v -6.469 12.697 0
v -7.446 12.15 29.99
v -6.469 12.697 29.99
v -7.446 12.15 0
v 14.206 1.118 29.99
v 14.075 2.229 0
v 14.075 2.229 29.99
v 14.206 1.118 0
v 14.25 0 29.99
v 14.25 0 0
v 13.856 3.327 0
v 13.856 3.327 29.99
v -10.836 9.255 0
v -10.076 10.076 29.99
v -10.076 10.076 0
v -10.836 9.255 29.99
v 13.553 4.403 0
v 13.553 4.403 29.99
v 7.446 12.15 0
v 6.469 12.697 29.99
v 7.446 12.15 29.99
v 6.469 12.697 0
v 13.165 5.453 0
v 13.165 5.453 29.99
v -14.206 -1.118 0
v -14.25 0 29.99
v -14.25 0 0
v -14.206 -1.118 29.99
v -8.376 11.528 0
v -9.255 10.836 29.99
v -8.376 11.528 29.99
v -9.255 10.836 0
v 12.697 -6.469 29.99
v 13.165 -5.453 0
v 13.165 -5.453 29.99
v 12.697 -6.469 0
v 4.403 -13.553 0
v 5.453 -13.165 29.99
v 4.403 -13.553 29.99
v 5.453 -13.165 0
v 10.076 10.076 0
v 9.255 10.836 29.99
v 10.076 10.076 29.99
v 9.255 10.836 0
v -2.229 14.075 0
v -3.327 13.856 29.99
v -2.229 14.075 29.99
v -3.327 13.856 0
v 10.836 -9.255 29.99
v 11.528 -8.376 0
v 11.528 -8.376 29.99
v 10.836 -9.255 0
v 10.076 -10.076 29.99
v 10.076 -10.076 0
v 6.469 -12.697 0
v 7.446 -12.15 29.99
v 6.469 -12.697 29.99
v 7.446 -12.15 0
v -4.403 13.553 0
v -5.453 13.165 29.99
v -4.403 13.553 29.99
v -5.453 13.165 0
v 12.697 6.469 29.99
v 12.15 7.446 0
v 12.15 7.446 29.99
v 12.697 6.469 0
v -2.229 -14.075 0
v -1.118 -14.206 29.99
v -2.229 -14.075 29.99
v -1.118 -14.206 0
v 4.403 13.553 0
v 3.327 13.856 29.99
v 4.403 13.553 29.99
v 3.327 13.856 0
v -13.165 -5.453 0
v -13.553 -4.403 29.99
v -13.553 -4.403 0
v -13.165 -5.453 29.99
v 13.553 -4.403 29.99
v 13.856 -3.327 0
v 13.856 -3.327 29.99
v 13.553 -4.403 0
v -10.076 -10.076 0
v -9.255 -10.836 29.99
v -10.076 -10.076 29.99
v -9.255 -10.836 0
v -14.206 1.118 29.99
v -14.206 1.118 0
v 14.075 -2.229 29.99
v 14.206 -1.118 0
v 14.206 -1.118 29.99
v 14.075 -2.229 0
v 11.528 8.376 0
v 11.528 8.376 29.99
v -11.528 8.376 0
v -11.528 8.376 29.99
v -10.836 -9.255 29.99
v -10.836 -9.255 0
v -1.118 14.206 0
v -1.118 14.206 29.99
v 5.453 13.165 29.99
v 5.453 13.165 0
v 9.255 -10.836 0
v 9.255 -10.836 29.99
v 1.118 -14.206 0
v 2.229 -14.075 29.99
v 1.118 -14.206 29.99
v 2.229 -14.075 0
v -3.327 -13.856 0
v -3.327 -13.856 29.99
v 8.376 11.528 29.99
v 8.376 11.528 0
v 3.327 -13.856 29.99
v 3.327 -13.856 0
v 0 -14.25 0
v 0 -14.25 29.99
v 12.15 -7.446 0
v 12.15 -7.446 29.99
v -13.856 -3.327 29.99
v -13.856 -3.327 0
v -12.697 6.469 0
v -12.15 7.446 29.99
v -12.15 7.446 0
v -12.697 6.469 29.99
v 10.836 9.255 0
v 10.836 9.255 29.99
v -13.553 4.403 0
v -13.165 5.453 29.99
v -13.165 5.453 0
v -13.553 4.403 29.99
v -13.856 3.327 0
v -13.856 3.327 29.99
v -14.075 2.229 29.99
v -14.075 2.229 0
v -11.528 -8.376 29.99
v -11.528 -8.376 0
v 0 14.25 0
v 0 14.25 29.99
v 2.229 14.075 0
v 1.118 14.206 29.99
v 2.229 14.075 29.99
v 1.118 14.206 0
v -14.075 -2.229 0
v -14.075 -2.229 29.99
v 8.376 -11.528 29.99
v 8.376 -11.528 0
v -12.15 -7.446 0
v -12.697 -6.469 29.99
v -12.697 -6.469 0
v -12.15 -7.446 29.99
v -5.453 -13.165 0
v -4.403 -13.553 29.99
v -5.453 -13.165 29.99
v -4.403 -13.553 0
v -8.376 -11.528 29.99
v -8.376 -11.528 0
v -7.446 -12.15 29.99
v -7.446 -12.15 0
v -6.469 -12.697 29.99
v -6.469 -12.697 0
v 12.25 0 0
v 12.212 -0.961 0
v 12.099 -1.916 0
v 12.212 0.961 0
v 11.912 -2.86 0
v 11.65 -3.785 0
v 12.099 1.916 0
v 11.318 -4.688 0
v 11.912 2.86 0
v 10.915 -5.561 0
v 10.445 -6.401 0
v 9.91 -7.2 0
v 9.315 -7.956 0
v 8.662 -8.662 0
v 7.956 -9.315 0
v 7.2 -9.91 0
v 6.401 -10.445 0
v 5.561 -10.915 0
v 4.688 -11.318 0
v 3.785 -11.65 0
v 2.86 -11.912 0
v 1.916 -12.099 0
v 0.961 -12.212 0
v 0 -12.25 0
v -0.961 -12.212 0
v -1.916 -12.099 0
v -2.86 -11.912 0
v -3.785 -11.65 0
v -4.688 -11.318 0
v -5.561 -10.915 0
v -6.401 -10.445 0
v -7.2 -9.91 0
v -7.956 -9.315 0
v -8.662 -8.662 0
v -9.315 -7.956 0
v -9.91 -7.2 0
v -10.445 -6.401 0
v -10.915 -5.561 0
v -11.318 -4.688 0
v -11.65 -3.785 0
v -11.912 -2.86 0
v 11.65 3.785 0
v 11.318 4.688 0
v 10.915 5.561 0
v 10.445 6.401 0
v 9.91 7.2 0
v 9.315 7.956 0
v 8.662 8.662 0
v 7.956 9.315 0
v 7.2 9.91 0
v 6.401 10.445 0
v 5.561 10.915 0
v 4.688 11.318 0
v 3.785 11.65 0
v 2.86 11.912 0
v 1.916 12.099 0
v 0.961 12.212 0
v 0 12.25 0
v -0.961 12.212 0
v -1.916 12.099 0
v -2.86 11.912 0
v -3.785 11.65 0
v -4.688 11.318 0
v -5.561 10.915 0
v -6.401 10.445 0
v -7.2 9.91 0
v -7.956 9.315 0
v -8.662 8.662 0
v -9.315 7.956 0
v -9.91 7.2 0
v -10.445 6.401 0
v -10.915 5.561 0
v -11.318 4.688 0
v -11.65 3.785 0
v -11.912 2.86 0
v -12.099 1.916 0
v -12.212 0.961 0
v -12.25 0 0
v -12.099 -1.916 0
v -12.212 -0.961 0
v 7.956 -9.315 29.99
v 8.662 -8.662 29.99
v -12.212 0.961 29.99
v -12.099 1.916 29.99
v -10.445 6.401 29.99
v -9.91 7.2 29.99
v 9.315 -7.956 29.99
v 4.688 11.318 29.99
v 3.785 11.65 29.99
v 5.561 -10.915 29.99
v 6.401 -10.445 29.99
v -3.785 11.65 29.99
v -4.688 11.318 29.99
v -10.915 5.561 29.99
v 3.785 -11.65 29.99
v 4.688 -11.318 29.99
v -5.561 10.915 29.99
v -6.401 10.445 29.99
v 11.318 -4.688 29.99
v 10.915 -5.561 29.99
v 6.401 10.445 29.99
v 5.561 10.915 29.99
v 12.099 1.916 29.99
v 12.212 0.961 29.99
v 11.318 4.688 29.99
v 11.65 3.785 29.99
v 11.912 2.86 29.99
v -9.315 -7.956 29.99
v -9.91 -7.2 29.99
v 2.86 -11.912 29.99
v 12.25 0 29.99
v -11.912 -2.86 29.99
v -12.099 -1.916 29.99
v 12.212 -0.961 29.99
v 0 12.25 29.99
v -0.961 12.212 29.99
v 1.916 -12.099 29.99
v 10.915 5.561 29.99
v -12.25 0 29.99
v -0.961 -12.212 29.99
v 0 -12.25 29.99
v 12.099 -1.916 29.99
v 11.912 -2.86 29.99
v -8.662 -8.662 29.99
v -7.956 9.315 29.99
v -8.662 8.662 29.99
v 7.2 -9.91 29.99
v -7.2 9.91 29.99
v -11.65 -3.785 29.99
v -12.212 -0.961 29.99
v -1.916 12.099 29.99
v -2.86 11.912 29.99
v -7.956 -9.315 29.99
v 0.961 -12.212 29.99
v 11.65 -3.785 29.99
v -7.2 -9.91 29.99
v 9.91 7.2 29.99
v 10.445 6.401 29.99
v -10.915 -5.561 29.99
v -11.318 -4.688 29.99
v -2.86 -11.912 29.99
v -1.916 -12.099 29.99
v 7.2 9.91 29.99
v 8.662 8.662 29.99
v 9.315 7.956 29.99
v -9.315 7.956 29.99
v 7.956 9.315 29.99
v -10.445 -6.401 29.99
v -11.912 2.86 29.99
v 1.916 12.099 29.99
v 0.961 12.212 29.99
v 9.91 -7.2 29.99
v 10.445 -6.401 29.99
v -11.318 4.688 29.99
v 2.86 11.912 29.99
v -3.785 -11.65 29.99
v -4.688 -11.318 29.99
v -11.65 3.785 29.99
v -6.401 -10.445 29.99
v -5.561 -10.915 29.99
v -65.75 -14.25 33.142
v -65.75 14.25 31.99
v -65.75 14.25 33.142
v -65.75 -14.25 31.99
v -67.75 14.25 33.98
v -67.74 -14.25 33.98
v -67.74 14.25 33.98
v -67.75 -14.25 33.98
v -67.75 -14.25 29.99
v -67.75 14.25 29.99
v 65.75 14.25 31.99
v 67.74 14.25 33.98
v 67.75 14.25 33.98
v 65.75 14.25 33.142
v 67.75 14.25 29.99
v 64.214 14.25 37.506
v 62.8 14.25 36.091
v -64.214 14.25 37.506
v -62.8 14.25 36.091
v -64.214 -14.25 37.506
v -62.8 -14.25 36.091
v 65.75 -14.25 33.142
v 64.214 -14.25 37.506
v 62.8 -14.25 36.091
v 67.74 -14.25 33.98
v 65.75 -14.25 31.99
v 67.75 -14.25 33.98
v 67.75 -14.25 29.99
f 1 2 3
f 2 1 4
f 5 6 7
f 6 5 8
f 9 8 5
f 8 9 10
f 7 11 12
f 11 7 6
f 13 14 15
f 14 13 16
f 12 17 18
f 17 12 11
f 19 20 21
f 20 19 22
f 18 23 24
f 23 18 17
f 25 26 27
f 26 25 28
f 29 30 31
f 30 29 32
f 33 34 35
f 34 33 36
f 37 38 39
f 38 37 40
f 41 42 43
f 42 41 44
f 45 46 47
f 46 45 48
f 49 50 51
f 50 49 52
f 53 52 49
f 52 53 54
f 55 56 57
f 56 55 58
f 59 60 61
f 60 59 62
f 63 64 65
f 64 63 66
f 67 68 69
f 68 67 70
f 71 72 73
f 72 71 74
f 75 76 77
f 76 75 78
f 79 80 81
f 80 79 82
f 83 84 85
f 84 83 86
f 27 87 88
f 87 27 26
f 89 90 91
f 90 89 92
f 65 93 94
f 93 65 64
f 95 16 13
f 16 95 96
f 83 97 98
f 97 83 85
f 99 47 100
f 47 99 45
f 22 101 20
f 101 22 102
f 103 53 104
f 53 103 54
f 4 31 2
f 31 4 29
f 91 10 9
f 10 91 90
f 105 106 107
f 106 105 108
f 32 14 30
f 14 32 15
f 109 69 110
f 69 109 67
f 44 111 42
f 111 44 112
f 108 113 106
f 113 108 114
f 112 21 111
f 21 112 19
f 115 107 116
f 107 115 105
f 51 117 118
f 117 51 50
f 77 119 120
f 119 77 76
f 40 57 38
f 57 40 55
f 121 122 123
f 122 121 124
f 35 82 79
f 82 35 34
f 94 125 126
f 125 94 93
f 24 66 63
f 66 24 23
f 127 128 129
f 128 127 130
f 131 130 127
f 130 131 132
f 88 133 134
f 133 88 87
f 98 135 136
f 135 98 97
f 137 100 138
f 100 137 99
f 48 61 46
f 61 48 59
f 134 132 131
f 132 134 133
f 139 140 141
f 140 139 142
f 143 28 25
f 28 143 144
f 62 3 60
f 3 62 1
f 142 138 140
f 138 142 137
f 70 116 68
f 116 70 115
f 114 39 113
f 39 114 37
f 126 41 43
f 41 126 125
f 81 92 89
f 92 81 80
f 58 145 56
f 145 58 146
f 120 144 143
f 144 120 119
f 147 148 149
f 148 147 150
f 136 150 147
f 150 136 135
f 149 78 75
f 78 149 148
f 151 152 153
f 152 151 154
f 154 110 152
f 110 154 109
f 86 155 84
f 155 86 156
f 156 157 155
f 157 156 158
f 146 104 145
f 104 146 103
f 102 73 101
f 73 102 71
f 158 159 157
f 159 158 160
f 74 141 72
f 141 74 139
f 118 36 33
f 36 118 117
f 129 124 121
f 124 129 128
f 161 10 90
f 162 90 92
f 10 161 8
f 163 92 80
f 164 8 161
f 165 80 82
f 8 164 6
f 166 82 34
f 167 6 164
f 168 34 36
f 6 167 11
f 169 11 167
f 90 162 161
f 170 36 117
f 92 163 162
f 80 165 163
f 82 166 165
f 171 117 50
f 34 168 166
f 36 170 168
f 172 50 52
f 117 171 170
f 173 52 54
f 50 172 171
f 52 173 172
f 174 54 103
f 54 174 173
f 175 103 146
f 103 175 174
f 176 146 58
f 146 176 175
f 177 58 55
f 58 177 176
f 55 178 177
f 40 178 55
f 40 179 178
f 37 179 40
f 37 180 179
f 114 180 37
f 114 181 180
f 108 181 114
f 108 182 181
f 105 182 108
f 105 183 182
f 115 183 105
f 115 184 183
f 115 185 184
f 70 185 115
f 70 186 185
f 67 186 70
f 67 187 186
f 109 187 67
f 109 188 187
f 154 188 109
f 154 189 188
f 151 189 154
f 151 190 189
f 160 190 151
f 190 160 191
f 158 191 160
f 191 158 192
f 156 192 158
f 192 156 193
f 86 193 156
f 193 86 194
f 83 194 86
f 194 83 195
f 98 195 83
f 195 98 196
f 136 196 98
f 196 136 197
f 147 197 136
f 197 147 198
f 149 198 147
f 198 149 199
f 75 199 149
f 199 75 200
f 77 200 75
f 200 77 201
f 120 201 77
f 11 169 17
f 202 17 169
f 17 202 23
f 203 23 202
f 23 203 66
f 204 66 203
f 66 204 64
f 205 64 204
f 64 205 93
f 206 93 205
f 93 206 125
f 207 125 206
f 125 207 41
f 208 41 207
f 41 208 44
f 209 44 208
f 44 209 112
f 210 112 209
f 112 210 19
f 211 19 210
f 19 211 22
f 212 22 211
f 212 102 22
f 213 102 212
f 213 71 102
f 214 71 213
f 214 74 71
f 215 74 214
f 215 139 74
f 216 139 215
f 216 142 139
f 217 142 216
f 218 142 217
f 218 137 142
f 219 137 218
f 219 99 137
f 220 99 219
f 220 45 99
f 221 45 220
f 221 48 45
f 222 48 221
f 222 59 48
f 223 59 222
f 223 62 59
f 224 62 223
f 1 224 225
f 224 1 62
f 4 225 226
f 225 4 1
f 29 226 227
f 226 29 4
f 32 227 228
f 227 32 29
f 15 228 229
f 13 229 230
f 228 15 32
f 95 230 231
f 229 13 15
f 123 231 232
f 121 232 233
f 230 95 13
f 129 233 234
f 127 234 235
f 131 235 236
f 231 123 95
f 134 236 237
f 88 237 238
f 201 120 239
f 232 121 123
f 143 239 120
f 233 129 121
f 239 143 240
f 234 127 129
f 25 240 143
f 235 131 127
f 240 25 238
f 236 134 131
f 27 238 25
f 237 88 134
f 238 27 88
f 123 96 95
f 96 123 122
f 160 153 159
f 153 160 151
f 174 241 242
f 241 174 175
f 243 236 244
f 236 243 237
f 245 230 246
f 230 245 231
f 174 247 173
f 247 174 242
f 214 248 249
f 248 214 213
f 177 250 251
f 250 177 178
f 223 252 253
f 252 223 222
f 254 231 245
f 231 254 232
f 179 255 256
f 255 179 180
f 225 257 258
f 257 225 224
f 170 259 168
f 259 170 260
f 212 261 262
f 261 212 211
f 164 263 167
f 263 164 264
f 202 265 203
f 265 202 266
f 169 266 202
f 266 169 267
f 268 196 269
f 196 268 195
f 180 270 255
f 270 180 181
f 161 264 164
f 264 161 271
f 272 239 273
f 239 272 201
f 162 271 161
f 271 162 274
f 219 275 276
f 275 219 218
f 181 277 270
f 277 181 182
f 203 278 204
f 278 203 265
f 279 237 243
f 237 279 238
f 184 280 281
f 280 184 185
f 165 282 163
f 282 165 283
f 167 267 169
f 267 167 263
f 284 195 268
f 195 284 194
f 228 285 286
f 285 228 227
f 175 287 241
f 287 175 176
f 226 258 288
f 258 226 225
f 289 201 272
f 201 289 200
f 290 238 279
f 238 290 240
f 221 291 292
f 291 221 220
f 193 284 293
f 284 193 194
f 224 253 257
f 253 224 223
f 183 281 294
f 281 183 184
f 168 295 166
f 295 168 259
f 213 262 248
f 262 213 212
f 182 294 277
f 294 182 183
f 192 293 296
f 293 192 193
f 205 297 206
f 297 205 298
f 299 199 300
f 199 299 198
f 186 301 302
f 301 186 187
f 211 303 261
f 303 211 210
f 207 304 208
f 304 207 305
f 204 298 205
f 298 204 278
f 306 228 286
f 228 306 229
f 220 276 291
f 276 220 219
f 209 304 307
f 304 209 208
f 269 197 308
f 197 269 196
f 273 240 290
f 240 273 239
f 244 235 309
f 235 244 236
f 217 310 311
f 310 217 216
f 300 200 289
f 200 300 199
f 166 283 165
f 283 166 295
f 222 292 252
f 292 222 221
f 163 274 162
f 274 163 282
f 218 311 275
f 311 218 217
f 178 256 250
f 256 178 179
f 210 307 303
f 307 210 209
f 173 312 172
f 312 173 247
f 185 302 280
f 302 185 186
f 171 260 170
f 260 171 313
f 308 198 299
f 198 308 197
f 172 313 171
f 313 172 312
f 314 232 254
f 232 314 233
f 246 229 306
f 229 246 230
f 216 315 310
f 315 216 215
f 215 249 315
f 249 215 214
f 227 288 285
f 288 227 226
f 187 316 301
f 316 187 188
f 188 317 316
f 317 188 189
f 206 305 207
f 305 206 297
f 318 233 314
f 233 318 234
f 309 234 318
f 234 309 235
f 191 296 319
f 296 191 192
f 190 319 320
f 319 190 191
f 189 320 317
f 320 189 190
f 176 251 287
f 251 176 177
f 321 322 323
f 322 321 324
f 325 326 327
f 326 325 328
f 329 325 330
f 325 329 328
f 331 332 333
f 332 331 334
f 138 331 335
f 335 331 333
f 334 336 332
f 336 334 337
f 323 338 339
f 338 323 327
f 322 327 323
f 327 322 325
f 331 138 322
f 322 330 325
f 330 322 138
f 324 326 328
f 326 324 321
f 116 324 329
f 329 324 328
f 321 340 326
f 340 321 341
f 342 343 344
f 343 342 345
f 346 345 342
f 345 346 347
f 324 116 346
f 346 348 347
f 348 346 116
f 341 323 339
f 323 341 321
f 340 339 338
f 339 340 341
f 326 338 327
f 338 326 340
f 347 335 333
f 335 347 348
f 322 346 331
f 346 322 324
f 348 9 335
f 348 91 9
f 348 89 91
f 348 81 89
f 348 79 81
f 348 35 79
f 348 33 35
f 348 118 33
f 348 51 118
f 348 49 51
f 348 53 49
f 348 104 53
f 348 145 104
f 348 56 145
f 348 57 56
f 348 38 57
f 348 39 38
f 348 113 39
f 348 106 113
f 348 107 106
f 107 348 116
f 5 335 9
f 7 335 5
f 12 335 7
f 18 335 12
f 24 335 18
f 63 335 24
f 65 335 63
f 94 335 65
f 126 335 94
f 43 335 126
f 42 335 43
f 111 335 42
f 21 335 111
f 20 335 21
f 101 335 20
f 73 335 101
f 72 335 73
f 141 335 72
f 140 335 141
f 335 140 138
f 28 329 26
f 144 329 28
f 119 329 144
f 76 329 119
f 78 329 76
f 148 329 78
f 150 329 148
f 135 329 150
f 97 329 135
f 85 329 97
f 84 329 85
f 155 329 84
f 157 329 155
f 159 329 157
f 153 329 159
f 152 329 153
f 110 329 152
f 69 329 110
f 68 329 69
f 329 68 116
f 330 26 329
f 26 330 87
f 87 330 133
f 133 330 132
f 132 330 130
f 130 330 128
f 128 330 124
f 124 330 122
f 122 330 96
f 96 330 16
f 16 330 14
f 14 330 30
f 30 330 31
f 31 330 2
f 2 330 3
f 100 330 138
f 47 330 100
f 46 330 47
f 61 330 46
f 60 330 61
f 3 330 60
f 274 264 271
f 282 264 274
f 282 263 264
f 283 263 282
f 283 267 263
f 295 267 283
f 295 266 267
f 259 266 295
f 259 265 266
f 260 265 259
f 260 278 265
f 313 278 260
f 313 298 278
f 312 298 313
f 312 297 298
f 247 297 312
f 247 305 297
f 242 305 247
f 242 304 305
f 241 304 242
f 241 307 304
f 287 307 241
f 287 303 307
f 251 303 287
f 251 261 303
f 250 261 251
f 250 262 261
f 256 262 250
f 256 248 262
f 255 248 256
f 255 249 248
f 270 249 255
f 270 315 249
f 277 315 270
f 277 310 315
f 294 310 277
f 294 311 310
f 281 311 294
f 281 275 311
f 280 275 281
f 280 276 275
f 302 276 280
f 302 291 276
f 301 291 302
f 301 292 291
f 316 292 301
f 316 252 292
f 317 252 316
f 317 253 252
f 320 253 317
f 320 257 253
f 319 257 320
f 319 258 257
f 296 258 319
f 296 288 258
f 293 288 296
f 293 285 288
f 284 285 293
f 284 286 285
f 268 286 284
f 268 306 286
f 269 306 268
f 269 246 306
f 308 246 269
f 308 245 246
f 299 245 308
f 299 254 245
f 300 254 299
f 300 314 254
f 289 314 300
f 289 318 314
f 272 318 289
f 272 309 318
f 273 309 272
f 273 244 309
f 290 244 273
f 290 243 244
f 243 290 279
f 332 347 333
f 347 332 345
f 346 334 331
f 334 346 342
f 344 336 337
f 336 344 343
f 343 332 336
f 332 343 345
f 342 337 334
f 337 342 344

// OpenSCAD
// Copyright (c) 2025 Chris Lee and contibuters.
// Licensed under the MIT license. See LICENSE file in the project root for details.

include <MCAD/units.scad>

panel_mount_tube_diam = 24;
panel_mount_tube_gap = 0.5;
panel_mount_tube_wall = 2;
panel_holder_wall = 2;
panel_mount_tube_depth = 30;
panel_width = 130;
panel_thickness = 2;
panel_holder_gap = 1.5;
panel_holder_tooth_len = 5;

module SolarPanelMount() {
  $fn = 80;
  twall = panel_mount_tube_wall;
  hwall = panel_holder_wall;
  td = panel_mount_tube_depth;
  pw = panel_width;
  // inner tube radius
  itr = (panel_mount_tube_diam + panel_mount_tube_gap)/2;
  // outer tube radius
  otr = itr + panel_mount_tube_wall;
  mnt_dims = [pw+2*hwall+panel_holder_gap, 2*otr, hwall];
  union() {
    // Tube stem
    difference() {
      cylinder(td, otr, otr);
      translate(-Z*epsilon) cylinder(td+1, itr, itr);
    }
    translate([-mnt_dims[0]/2, -otr, td-epsilon]) {
      cube(mnt_dims);
      translate(Z*(hwall-epsilon)) {
	cube([hwall, mnt_dims[1], panel_thickness]);
	translate(Z*(panel_thickness-epsilon)) rotate(45, Y)
	  cube([hwall, mnt_dims[1], panel_holder_tooth_len]);
      }
    }
    translate([mnt_dims[0]/2-hwall, -otr, td-epsilon]) {
      translate(Z*(hwall-epsilon)) {
	cube([hwall, mnt_dims[1], panel_thickness]);
	translate([hwall, mnt_dims[1], panel_thickness-epsilon])
	  rotate(180, Z) rotate(45, Y)
	  cube([hwall, mnt_dims[1], panel_holder_tooth_len]);
      }
    }
  }
}


SolarPanelMount();
